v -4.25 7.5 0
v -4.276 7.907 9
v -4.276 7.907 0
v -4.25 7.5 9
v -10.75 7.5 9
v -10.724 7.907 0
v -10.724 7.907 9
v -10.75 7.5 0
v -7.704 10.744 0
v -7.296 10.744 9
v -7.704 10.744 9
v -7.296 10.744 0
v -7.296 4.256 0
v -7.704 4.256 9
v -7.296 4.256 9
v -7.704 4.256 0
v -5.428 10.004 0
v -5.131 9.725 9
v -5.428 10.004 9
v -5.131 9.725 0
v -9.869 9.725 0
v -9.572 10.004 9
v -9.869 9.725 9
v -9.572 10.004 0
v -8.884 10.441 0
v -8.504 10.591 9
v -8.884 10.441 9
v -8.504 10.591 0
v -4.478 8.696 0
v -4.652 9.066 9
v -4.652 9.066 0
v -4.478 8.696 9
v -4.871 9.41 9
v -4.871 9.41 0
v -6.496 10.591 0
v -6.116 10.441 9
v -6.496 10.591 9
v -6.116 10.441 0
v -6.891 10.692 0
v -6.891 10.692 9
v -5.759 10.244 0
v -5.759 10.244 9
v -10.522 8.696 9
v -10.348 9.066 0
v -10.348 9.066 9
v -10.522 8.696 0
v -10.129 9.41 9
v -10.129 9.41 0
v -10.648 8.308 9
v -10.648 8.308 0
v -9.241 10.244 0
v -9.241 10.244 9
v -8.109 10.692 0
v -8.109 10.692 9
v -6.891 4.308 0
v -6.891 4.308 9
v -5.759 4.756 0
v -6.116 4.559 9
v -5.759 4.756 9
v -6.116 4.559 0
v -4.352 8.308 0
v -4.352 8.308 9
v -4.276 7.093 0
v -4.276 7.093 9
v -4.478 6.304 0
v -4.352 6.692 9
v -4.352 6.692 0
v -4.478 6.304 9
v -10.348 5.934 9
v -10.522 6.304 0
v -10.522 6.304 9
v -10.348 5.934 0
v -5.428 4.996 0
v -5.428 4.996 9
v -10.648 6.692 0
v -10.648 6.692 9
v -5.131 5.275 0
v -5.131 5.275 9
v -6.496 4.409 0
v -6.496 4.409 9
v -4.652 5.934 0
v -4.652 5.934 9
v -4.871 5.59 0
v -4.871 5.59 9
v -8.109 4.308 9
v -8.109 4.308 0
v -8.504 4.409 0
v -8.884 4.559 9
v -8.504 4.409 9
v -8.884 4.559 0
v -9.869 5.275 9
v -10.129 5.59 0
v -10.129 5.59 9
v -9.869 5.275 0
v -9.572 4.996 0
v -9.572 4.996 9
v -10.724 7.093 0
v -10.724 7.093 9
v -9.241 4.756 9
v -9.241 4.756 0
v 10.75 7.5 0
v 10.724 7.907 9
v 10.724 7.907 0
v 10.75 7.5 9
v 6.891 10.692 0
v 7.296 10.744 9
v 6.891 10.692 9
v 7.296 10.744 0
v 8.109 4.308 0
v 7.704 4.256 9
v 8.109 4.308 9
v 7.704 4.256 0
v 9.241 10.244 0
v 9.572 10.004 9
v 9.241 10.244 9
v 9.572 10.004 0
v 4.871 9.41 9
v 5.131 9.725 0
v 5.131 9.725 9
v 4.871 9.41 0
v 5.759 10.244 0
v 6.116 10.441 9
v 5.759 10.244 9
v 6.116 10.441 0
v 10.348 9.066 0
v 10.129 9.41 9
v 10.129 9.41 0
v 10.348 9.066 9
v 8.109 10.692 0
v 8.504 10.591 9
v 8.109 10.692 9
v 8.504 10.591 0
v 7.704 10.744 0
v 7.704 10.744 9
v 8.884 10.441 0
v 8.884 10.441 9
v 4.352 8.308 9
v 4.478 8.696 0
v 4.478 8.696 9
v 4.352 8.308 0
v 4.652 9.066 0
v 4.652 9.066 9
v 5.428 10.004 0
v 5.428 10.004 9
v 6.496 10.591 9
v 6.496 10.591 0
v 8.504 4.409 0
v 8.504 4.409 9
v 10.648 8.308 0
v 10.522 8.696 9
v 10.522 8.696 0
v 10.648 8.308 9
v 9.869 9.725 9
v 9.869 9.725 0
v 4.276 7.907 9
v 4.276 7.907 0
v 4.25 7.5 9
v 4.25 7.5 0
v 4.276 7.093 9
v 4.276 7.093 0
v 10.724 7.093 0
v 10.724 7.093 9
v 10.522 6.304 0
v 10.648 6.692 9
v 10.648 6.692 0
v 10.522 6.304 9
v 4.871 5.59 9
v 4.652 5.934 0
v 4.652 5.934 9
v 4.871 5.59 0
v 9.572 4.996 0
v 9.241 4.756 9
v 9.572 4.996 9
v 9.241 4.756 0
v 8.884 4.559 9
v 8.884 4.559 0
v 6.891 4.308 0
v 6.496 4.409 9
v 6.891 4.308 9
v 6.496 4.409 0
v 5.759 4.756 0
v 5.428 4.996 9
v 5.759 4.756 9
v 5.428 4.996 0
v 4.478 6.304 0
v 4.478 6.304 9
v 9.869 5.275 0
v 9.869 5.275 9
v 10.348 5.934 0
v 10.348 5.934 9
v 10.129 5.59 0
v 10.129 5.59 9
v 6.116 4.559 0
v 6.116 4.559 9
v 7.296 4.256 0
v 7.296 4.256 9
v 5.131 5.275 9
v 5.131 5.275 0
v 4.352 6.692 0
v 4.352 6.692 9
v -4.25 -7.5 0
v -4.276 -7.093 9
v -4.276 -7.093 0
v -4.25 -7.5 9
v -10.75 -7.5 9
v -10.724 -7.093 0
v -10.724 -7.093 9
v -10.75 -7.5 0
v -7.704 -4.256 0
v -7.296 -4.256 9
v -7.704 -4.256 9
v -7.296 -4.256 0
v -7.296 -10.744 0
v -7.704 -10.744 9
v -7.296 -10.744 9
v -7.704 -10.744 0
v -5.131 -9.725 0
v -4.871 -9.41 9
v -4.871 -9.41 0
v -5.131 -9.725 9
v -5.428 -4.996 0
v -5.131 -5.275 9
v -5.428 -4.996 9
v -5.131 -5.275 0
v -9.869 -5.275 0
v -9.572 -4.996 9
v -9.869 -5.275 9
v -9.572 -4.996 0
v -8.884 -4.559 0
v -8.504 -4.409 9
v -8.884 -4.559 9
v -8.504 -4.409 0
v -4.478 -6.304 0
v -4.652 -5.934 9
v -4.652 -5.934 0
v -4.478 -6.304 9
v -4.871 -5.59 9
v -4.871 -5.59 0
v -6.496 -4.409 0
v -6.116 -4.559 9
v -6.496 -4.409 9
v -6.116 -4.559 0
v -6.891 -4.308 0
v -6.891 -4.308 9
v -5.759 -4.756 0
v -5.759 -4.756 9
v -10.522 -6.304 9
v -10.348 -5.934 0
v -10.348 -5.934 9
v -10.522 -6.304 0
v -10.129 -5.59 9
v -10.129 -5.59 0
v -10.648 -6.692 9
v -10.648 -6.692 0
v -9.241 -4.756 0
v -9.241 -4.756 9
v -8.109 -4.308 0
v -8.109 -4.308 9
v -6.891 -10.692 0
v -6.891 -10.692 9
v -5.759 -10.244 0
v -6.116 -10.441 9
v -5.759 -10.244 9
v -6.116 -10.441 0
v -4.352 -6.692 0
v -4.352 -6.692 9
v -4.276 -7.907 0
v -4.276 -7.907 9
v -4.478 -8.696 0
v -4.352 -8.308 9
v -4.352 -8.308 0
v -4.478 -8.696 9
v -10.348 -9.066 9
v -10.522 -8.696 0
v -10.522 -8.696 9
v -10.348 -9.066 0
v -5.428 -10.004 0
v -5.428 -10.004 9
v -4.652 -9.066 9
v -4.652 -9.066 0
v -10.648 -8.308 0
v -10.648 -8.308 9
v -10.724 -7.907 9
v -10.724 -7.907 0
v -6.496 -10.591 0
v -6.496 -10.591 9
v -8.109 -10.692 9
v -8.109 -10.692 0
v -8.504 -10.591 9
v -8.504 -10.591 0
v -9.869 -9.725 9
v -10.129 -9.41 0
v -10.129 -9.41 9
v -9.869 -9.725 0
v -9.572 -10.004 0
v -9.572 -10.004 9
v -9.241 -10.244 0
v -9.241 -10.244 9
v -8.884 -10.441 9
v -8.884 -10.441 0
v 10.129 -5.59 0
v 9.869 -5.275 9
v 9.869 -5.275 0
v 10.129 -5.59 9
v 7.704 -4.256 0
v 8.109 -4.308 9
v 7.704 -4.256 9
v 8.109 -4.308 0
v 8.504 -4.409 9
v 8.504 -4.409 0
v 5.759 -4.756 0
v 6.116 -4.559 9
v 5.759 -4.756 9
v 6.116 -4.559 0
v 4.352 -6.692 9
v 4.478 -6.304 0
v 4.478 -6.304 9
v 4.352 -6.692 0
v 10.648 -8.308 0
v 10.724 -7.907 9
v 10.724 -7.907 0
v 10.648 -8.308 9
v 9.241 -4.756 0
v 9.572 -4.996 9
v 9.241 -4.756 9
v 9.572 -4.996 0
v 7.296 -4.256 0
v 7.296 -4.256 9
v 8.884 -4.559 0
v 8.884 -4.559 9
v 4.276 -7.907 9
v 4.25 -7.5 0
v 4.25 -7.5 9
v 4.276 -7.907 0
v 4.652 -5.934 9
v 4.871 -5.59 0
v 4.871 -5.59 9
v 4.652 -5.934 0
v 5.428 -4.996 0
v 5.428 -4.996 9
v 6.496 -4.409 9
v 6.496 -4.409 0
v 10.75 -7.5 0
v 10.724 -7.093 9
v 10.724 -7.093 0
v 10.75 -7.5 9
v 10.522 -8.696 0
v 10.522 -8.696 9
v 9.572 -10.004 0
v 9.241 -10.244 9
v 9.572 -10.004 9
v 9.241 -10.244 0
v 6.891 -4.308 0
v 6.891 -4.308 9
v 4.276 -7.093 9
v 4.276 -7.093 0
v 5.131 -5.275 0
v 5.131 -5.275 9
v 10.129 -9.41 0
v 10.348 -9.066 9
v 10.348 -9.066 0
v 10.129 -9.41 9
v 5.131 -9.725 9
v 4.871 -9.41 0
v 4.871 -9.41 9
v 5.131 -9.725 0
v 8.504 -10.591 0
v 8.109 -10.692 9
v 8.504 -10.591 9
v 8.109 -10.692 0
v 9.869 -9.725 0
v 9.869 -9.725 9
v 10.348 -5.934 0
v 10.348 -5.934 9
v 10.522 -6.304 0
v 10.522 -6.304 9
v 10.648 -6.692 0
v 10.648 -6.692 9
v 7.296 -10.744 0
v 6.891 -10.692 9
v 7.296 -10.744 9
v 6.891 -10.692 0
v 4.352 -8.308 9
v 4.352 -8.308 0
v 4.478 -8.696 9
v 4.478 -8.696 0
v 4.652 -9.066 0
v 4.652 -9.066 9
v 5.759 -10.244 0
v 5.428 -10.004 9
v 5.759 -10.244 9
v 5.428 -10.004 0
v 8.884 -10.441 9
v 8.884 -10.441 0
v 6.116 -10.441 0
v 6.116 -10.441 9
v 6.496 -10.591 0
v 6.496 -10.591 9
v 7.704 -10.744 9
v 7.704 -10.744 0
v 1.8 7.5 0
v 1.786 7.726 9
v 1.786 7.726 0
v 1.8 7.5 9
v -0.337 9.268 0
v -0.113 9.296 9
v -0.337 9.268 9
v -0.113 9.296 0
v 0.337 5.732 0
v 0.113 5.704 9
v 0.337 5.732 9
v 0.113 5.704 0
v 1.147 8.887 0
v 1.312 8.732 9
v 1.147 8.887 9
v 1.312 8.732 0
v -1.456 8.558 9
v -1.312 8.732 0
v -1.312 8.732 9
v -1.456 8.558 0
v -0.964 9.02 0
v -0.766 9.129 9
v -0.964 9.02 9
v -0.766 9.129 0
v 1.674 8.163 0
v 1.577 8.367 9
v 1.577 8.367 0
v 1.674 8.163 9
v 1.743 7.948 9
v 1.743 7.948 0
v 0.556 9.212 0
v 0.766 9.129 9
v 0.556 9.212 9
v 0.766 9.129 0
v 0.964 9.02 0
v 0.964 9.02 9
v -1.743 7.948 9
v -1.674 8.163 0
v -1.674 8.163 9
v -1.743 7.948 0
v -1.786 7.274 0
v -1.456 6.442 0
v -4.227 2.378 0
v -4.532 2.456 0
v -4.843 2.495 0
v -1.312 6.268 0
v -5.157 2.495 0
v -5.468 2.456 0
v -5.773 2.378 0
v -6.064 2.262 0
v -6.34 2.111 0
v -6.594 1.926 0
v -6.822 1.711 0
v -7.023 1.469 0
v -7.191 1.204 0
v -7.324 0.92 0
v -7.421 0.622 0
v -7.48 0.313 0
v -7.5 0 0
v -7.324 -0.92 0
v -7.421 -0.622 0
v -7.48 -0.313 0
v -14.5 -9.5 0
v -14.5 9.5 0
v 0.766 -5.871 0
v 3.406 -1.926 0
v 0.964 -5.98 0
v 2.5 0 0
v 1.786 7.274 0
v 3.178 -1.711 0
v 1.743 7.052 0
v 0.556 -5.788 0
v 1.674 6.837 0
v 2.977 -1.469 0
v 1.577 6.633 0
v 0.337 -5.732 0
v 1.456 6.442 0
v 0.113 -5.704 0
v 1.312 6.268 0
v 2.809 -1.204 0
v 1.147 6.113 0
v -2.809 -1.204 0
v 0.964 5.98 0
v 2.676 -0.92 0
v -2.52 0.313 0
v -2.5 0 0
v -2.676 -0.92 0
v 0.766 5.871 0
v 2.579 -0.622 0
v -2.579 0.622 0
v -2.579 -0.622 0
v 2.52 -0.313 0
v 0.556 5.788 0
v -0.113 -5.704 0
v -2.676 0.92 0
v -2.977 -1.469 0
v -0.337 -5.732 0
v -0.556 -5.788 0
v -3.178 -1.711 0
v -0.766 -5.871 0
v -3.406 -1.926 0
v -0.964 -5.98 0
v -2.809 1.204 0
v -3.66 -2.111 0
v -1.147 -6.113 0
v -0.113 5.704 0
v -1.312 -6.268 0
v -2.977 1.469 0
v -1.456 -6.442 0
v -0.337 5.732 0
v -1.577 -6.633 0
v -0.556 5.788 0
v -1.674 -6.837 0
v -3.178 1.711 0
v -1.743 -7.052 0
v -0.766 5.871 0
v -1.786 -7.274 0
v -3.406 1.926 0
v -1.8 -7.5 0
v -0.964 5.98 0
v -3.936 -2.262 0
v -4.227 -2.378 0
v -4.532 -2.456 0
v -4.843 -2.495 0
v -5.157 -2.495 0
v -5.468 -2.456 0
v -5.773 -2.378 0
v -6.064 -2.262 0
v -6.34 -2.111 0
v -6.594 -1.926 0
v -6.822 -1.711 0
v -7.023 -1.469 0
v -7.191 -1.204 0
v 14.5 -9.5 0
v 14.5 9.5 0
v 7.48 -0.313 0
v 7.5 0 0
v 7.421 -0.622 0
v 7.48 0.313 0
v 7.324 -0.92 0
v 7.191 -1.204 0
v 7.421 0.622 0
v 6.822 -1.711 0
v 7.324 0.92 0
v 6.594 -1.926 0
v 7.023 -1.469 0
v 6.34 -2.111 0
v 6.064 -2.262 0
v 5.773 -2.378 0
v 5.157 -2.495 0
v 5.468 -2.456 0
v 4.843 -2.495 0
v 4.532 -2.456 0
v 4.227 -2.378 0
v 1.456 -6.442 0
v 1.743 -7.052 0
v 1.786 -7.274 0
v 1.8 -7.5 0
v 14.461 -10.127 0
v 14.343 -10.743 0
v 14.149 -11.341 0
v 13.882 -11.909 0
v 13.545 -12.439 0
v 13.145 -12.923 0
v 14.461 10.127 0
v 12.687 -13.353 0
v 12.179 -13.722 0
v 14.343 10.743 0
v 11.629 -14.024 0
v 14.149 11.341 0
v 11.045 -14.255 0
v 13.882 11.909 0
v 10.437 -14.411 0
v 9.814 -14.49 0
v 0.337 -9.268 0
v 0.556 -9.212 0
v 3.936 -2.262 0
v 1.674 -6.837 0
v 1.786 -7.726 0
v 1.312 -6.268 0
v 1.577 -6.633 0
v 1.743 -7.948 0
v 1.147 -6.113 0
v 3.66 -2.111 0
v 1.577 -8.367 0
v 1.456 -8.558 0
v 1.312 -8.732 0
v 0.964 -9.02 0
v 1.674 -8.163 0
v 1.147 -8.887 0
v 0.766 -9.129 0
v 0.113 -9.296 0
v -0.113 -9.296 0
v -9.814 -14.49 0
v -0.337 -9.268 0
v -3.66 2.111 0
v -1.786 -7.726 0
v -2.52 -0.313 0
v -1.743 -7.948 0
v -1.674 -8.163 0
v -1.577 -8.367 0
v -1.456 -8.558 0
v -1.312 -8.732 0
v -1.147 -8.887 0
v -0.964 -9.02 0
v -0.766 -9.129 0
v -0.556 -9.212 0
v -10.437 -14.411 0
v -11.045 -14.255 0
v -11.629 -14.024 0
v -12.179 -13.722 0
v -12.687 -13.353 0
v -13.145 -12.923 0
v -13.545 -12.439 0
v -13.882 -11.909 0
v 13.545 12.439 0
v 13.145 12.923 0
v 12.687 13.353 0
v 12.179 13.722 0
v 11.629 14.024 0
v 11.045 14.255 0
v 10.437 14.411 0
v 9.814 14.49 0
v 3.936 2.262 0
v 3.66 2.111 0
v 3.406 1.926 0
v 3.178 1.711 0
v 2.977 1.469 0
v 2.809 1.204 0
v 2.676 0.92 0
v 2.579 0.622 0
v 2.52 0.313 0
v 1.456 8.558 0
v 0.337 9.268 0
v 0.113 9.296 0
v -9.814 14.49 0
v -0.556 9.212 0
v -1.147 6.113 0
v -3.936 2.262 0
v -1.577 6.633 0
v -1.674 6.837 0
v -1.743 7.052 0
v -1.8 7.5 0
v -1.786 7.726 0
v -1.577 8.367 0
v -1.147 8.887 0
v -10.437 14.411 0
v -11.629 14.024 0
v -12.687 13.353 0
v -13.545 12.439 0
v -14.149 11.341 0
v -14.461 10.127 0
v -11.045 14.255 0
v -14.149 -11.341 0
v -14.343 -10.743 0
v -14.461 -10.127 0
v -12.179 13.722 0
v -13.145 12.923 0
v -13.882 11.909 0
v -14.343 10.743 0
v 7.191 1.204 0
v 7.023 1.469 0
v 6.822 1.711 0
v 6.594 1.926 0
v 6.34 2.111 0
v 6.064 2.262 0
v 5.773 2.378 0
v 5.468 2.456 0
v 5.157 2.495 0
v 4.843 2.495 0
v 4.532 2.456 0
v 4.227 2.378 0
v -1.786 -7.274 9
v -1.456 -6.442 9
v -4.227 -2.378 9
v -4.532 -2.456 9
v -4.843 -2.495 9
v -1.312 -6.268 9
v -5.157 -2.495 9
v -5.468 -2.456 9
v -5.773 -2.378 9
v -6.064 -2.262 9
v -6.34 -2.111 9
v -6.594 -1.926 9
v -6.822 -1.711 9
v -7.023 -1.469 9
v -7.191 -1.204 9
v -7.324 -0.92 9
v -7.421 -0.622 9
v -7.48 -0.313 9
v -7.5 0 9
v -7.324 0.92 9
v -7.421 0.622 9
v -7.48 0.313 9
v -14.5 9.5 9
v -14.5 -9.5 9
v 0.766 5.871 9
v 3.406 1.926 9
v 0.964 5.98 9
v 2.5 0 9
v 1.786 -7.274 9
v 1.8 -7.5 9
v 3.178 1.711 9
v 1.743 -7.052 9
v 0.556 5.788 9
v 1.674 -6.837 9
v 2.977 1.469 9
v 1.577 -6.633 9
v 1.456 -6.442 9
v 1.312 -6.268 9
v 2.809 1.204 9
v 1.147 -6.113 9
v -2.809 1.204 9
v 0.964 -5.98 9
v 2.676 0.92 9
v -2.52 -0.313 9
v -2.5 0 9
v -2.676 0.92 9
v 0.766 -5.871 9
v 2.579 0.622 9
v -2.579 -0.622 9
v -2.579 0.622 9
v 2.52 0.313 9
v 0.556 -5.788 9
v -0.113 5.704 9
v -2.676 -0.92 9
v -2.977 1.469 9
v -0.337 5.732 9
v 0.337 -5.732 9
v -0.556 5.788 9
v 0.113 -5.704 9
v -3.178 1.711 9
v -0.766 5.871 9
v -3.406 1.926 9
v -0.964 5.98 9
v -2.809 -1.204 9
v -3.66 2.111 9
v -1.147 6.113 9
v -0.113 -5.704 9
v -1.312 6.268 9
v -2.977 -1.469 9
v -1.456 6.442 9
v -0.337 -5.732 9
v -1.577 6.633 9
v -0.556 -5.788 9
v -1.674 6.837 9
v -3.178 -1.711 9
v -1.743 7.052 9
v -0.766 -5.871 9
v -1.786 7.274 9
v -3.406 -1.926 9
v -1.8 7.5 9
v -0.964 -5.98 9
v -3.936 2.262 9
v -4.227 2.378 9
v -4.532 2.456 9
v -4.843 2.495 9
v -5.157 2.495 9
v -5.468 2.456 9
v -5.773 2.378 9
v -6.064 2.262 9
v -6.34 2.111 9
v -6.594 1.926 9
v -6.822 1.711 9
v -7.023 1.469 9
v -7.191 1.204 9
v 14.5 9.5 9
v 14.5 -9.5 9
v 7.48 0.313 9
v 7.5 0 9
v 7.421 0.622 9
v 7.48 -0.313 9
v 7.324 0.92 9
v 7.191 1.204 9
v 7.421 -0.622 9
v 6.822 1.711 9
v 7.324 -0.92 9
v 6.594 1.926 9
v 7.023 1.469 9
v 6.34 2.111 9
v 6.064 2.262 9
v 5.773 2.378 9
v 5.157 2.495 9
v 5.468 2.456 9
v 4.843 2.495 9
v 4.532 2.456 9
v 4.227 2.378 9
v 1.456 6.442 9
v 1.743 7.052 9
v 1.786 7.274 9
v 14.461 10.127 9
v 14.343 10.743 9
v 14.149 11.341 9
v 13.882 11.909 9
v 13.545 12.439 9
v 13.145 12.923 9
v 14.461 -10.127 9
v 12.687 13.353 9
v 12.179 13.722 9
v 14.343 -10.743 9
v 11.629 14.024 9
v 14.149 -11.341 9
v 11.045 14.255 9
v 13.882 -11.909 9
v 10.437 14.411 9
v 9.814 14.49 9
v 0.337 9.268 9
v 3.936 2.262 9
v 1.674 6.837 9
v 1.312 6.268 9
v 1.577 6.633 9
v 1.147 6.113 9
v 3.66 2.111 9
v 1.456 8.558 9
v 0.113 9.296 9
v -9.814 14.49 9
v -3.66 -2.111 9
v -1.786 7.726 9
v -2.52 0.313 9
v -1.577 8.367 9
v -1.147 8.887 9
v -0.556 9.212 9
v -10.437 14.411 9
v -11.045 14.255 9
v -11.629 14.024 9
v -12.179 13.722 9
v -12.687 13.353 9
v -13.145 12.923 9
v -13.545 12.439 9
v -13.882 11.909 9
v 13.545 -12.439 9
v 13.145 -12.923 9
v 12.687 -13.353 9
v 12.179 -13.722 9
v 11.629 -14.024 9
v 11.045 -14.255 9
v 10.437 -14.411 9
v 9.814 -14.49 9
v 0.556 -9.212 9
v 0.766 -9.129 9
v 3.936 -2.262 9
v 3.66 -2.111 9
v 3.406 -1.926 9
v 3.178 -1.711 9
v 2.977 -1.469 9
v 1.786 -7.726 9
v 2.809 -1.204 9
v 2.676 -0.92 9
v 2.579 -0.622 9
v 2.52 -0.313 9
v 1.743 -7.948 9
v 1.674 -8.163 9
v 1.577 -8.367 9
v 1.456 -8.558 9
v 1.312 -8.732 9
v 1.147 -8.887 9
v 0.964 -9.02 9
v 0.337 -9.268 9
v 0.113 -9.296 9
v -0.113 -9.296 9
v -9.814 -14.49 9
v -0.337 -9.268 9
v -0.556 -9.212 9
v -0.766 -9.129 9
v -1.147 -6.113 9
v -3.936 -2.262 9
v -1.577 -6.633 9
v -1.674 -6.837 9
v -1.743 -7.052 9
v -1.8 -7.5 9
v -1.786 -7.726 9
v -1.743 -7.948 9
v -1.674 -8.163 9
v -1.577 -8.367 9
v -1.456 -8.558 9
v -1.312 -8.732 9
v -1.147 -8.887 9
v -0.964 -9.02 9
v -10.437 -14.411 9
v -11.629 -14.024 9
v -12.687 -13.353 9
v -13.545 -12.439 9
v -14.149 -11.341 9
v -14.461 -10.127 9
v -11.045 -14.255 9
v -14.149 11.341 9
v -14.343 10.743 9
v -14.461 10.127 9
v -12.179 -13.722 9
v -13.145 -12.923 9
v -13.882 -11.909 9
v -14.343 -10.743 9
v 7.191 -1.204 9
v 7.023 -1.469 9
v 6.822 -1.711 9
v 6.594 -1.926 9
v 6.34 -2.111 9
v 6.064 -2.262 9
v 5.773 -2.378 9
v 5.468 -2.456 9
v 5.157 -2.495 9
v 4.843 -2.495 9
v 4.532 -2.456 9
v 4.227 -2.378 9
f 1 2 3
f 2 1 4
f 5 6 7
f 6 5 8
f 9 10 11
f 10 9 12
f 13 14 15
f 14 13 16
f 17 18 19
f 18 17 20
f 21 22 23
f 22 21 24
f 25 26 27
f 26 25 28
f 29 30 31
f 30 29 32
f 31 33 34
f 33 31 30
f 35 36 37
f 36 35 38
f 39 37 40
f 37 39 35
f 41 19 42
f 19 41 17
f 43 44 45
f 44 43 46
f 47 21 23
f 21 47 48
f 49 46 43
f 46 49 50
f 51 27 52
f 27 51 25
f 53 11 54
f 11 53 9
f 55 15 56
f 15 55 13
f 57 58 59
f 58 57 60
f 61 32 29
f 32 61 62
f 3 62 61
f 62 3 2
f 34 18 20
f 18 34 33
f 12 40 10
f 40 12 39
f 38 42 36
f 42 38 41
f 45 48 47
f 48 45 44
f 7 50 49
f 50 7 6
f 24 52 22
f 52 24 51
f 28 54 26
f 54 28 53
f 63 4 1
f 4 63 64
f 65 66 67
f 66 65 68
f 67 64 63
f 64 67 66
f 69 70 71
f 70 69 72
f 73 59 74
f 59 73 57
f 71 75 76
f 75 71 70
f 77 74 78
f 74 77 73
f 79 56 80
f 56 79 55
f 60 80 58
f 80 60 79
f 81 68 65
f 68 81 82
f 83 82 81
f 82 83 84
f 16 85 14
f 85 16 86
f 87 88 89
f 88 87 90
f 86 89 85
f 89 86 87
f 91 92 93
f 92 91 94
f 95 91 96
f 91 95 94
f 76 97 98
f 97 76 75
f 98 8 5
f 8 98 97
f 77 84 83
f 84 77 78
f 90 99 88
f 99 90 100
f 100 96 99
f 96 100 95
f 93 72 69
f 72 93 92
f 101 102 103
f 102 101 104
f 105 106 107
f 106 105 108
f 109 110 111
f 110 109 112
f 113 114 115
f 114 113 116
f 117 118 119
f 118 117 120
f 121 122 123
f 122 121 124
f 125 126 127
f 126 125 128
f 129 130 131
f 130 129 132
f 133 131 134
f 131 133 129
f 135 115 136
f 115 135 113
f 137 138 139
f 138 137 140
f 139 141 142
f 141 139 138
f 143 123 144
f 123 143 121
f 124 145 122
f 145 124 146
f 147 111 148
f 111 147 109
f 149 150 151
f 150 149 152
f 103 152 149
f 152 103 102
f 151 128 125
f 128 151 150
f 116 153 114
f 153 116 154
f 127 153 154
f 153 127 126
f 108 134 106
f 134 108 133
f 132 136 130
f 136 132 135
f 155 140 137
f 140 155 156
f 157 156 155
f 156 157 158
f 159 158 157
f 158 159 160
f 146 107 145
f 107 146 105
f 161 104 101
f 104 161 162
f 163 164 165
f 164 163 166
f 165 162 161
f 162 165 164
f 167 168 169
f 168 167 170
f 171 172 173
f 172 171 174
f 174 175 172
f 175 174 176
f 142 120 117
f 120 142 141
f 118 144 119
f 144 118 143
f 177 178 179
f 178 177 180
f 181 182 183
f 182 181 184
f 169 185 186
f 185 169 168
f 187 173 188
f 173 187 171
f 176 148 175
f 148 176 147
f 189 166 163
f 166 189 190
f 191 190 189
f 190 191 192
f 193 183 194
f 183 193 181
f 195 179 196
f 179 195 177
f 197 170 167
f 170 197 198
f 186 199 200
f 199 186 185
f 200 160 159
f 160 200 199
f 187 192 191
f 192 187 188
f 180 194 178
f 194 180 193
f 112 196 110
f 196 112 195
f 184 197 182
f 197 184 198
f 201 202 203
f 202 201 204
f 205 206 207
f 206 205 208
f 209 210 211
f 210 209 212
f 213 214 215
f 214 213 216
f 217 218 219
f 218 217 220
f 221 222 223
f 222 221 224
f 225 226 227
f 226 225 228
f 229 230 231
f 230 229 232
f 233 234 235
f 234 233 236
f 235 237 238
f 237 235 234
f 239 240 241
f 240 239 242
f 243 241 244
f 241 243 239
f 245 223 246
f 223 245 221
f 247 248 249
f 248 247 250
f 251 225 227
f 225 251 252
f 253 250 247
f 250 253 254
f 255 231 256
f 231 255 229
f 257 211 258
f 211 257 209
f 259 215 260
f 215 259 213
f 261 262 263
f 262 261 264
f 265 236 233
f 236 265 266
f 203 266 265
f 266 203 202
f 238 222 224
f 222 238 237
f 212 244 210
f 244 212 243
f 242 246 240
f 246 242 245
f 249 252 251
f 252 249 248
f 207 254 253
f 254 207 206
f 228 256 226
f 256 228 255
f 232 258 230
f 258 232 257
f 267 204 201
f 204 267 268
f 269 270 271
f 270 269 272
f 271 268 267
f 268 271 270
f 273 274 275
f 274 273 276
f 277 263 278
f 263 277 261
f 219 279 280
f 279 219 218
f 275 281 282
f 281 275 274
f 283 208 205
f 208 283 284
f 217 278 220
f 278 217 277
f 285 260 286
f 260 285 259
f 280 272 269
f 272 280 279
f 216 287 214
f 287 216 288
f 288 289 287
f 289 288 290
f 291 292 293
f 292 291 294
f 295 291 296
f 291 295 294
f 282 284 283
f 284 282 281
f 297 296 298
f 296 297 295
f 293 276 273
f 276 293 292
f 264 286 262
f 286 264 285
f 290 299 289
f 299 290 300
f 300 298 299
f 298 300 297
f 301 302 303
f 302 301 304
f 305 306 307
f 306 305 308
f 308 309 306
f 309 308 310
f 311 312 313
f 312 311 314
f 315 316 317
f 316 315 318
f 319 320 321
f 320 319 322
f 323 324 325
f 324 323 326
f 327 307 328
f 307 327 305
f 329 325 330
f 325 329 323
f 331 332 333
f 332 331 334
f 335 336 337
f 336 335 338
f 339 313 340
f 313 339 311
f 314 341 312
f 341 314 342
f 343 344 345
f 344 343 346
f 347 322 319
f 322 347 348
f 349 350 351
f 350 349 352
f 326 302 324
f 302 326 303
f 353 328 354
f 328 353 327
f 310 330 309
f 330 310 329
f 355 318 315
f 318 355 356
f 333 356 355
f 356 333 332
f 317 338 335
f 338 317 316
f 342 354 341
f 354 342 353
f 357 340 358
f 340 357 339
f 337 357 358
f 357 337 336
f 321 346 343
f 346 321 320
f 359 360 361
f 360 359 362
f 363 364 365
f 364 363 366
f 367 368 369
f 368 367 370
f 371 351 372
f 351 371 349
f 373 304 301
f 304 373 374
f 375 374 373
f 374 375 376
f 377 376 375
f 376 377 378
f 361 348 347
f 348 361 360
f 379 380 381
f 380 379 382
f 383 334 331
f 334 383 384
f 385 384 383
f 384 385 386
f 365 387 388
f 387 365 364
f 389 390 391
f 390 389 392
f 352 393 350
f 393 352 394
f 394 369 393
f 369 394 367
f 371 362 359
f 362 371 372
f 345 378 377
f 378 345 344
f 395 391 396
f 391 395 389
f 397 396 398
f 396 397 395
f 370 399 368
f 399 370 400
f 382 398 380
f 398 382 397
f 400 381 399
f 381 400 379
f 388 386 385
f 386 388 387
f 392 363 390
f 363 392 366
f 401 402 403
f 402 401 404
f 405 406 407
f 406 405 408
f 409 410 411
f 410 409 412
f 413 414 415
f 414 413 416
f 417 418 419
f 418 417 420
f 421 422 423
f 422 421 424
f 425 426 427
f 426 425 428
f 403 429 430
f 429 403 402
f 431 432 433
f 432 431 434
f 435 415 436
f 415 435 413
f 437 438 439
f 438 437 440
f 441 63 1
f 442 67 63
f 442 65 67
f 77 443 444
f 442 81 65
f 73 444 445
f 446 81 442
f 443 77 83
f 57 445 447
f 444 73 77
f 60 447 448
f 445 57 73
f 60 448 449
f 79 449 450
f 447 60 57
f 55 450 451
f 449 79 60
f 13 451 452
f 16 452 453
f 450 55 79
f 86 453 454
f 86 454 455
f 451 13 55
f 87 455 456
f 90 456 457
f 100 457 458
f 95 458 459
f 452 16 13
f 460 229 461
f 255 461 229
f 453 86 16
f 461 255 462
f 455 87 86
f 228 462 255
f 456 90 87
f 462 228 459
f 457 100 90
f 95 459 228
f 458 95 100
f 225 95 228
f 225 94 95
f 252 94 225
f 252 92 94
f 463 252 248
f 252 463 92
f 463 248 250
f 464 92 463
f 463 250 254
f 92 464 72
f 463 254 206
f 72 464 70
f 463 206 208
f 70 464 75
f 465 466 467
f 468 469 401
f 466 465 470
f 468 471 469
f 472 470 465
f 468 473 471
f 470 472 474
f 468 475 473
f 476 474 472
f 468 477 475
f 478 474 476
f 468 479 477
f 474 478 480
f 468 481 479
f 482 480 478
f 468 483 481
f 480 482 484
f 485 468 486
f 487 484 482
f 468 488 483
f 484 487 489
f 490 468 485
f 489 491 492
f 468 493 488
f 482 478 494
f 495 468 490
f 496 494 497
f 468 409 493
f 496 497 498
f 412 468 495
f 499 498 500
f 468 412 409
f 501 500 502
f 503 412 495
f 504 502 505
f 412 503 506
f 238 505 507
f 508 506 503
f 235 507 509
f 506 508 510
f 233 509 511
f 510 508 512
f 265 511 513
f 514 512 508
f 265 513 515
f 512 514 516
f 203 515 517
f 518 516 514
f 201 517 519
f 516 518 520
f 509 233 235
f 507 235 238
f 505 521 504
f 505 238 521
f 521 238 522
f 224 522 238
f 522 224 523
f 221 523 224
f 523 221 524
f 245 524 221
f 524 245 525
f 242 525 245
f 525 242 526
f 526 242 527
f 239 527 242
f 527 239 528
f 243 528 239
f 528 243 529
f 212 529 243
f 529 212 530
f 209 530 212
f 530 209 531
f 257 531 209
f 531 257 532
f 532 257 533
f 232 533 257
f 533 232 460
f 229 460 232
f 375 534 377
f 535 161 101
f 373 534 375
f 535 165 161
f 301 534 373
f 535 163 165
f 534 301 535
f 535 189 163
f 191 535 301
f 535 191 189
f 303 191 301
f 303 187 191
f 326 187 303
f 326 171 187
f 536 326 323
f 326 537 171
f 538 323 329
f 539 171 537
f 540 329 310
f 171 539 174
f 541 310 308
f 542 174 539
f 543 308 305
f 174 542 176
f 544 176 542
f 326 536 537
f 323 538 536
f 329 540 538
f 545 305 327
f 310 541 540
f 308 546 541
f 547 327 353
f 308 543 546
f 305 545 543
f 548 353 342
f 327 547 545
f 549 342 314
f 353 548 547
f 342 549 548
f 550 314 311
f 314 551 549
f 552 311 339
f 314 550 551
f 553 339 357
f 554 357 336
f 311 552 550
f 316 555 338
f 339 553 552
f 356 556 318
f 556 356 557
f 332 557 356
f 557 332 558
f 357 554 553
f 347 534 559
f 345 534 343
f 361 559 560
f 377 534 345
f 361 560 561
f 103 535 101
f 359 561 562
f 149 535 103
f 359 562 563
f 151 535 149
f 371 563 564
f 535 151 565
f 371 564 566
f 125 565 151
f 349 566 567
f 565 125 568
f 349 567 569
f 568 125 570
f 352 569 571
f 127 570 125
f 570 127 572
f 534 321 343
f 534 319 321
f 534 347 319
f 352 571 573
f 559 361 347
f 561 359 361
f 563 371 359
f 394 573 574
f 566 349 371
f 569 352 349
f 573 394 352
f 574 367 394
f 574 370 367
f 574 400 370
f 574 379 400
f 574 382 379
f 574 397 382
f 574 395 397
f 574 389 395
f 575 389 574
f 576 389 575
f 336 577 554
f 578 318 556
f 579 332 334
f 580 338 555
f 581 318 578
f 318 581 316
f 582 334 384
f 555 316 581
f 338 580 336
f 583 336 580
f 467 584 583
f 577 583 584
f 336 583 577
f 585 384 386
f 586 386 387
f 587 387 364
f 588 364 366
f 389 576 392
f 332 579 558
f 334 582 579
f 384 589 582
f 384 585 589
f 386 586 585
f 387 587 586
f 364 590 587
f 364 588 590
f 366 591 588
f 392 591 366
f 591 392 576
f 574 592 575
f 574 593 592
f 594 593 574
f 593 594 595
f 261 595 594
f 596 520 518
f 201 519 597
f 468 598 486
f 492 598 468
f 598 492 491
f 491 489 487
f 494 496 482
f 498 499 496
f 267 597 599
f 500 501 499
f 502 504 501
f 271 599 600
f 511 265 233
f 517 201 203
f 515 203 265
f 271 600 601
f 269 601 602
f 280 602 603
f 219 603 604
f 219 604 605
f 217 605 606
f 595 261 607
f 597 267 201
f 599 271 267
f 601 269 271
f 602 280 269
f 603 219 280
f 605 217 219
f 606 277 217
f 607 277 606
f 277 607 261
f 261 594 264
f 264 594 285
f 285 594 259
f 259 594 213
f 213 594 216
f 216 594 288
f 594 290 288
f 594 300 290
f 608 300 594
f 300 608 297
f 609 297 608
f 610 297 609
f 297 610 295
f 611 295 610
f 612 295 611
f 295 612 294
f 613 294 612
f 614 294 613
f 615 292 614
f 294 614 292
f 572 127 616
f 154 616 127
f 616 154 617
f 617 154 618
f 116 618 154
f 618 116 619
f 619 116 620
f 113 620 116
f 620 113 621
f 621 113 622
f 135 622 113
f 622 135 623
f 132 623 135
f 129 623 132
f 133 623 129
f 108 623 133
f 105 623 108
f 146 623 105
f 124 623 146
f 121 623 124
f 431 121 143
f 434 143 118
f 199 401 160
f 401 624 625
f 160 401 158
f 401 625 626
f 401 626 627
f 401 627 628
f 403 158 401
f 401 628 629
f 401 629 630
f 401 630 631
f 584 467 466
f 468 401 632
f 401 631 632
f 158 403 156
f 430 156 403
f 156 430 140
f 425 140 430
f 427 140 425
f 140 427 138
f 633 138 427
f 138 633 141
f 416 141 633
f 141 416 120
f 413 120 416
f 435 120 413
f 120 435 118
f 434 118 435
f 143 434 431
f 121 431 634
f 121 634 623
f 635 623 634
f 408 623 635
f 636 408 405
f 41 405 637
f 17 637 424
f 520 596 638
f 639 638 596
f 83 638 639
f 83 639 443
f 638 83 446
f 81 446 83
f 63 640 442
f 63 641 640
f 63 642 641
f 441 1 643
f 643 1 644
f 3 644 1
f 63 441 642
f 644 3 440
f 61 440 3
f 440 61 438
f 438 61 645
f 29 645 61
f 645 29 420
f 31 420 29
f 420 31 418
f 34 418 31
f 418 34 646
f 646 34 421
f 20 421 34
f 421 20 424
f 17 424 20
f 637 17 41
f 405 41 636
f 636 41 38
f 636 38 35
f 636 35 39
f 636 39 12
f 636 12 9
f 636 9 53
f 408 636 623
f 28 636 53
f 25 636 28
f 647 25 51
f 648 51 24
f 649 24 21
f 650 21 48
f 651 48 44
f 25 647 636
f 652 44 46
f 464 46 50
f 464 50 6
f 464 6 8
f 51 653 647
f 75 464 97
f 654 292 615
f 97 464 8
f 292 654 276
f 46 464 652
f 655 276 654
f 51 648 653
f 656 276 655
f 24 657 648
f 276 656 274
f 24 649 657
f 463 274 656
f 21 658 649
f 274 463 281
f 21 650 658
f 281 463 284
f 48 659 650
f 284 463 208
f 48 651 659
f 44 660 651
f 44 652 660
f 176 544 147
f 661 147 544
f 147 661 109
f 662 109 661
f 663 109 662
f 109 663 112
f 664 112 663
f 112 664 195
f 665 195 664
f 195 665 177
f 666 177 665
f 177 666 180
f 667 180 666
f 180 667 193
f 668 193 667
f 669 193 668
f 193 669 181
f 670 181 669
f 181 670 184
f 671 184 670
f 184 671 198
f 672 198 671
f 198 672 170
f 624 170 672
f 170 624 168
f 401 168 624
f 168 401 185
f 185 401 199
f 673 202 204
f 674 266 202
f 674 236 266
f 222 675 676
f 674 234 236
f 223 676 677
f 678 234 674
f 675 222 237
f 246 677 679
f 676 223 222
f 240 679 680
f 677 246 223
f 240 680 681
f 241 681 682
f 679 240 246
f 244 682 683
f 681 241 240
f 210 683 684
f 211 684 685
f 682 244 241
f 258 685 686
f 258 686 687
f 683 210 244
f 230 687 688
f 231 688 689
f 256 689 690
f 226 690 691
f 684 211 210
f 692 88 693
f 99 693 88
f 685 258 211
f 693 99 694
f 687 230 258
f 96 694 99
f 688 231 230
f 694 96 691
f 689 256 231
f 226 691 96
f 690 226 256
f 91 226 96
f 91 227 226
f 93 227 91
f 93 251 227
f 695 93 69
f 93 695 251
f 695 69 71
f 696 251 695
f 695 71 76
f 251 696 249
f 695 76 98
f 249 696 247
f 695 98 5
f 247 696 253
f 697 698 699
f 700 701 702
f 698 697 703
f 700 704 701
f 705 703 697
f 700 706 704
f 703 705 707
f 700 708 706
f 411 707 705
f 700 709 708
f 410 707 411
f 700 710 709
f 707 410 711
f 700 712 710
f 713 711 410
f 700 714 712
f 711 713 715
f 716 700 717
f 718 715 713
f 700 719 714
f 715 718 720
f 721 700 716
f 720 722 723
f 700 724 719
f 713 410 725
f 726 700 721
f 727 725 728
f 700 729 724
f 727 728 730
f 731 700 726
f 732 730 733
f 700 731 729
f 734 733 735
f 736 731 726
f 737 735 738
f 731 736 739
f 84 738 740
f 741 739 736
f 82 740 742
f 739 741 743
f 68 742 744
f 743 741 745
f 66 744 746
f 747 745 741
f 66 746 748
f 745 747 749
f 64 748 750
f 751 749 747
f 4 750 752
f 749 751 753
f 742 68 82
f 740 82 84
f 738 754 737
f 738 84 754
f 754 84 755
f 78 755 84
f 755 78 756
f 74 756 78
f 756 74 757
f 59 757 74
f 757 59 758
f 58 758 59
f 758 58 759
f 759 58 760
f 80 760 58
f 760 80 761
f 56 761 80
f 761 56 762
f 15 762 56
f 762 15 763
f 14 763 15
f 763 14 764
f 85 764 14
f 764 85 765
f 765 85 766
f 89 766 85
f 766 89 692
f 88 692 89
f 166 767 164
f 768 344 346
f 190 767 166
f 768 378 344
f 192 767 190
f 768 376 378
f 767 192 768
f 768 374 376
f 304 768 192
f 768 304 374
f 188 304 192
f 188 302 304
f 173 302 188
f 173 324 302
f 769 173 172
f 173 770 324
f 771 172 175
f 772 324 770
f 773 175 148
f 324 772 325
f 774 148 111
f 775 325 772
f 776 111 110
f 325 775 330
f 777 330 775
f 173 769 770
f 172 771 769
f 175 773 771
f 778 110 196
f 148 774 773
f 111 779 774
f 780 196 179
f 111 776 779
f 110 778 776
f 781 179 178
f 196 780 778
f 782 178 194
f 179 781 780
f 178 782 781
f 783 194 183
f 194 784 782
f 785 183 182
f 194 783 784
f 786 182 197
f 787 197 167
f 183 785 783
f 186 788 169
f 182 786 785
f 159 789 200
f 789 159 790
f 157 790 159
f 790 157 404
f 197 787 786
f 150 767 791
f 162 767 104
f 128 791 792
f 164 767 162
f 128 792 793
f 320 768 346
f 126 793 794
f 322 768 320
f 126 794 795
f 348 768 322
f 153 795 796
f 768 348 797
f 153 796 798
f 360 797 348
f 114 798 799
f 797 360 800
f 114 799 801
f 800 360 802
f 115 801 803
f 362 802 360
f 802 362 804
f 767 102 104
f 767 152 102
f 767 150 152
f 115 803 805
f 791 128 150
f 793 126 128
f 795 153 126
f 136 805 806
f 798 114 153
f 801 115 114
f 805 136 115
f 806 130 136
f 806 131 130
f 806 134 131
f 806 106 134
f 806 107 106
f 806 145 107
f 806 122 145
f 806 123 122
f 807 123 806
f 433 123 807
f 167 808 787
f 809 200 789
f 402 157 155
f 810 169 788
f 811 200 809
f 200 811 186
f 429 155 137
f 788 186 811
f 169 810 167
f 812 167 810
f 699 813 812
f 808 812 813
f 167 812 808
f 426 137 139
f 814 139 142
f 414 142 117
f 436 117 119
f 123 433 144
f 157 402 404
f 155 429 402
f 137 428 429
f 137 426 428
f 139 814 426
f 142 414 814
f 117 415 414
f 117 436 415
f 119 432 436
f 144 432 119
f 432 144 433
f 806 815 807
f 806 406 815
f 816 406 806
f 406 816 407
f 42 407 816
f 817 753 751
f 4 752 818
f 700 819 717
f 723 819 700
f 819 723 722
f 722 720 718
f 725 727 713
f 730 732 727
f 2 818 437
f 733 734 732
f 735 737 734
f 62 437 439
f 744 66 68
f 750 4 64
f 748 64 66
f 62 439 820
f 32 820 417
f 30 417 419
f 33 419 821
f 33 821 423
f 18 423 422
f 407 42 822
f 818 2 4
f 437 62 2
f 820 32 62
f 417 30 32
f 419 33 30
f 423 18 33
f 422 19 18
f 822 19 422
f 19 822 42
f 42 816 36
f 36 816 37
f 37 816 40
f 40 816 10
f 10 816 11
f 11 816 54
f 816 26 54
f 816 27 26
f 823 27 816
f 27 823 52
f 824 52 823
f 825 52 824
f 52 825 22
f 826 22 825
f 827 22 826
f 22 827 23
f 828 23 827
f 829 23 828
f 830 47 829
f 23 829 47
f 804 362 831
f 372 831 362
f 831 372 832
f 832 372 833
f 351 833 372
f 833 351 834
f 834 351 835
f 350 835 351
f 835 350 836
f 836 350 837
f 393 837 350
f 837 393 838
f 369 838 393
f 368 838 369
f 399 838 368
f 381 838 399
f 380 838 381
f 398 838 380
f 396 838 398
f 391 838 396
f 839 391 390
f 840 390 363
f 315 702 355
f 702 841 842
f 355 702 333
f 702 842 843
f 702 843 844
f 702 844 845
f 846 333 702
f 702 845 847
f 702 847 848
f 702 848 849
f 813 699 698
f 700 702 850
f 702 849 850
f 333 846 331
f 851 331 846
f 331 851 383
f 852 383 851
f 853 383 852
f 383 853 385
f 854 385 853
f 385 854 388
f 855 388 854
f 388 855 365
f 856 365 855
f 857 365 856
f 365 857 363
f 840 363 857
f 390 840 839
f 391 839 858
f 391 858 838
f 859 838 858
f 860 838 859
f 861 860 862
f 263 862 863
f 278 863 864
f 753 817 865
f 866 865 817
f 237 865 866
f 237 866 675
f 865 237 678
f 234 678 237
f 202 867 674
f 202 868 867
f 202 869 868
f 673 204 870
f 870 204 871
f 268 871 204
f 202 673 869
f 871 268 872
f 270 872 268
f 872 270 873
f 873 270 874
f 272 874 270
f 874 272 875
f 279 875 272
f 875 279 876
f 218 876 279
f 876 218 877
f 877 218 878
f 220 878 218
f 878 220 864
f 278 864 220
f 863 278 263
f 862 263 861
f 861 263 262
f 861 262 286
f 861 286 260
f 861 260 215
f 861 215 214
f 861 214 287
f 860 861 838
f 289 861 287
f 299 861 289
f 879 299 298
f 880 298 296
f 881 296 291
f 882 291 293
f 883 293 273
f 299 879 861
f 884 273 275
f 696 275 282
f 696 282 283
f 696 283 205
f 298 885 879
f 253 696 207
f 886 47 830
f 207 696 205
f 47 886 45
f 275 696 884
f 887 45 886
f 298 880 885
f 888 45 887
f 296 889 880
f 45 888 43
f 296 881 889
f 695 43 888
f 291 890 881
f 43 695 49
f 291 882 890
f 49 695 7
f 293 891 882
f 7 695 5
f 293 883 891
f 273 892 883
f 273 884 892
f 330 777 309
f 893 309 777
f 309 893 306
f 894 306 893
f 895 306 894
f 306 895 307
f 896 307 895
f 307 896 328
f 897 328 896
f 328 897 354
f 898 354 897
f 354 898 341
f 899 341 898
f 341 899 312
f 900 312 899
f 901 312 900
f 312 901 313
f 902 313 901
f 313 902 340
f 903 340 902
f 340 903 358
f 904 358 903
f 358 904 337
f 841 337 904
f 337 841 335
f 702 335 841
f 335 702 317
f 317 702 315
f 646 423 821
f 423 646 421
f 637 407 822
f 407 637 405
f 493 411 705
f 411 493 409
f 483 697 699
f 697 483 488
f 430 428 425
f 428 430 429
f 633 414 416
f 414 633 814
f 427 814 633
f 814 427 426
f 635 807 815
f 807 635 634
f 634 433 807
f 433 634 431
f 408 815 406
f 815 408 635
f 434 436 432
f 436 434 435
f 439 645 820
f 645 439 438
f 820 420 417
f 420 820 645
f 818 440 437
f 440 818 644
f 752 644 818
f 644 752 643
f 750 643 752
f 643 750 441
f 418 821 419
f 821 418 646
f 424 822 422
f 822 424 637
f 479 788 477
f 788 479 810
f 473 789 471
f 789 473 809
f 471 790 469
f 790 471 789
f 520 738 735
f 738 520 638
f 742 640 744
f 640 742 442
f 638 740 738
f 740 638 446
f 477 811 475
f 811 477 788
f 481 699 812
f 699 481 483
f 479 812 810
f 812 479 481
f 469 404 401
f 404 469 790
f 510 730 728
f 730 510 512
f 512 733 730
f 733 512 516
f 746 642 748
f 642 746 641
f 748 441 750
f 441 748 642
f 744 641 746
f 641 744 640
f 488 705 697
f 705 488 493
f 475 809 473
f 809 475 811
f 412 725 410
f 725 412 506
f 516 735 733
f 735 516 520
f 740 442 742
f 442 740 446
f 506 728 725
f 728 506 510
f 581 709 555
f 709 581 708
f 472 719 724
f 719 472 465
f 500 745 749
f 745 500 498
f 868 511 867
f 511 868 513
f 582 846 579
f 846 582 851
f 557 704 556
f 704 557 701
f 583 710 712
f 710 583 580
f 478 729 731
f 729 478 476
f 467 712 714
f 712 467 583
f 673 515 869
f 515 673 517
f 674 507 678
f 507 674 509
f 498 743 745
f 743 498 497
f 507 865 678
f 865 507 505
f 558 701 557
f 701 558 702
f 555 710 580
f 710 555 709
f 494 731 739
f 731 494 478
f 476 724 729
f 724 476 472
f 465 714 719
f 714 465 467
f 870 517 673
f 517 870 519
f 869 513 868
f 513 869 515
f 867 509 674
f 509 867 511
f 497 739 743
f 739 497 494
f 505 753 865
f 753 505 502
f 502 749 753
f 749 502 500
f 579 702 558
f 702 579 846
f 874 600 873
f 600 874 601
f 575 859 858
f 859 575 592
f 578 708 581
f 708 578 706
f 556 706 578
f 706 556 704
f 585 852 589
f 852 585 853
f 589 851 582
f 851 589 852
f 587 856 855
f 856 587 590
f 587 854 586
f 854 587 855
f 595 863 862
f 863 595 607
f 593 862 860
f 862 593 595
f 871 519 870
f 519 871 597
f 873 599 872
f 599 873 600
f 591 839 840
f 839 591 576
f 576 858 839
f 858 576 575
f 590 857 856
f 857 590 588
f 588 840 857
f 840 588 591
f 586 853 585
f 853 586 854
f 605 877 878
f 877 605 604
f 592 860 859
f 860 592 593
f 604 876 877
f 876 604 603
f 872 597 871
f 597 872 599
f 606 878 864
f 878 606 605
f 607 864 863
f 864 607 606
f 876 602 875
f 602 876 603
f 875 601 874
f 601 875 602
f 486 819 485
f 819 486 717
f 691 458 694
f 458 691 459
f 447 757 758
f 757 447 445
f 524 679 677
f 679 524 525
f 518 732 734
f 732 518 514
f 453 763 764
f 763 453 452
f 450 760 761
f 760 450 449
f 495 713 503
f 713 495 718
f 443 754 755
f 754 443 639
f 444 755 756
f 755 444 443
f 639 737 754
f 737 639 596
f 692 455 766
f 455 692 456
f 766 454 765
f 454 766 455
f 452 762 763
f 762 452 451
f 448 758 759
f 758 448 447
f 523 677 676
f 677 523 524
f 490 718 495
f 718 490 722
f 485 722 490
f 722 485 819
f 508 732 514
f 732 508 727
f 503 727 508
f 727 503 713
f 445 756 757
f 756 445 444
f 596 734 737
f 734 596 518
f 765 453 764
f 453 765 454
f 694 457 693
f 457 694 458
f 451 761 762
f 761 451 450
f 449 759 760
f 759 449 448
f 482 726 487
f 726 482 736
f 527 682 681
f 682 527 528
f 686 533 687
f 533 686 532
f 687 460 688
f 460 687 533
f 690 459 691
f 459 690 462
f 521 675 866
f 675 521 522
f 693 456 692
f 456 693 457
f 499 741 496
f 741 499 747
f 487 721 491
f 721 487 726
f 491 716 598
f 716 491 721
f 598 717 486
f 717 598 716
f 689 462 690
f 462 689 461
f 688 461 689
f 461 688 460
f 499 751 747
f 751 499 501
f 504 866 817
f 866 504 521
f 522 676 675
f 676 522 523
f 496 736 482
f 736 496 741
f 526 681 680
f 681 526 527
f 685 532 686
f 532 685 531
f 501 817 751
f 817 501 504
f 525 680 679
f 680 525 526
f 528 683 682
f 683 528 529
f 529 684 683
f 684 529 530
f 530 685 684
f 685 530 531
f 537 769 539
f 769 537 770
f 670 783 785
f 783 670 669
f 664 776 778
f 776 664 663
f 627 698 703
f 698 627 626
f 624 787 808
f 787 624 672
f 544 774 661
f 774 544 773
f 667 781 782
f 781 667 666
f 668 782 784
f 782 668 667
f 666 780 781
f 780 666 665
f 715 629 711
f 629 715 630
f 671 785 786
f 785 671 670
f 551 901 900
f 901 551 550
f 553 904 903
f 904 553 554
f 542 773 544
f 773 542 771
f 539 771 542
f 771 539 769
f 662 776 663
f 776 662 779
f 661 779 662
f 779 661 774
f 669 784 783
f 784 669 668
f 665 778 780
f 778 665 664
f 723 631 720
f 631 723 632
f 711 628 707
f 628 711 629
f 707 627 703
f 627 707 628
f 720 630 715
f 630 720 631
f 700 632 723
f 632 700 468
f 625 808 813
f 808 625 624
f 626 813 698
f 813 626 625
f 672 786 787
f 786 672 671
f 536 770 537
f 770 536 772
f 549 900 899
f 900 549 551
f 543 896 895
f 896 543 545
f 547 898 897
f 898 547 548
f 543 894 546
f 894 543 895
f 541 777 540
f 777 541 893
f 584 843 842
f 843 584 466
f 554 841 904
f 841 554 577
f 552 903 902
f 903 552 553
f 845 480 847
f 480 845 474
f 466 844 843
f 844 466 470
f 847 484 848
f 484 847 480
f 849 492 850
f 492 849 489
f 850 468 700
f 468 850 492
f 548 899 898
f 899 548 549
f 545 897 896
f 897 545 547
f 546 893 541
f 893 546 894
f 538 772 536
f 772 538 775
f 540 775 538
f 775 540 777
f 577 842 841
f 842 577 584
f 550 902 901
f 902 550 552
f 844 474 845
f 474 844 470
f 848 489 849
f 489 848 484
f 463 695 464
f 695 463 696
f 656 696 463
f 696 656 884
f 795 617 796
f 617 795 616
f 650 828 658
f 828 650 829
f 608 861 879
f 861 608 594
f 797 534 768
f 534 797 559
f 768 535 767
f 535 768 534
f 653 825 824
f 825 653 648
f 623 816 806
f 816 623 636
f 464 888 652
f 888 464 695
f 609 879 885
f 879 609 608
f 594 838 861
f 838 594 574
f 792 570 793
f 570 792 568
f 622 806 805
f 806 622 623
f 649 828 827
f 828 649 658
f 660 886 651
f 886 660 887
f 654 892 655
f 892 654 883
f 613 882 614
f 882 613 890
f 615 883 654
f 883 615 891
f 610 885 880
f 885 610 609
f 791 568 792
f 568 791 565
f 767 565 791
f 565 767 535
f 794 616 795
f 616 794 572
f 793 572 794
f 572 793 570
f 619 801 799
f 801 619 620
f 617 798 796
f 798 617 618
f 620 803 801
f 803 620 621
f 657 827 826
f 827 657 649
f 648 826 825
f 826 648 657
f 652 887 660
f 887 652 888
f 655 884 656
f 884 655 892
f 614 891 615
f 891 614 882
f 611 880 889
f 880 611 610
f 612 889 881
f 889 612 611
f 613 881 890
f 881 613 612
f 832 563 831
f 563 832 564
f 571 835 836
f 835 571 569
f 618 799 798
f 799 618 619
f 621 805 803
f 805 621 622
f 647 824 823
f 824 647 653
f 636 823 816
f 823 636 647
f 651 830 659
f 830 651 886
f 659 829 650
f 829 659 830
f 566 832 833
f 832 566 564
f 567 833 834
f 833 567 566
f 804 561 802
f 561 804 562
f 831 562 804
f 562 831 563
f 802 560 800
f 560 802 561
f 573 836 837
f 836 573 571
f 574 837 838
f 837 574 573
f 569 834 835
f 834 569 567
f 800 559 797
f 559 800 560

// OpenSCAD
$fn = 50;


difference() {
	union() {
		hull() {
			translate(v = [-9.5000000000, 9.5000000000, 0]) {
				cylinder(h = 9, r = 5);
			}
			translate(v = [9.5000000000, 9.5000000000, 0]) {
				cylinder(h = 9, r = 5);
			}
			translate(v = [-9.5000000000, -9.5000000000, 0]) {
				cylinder(h = 9, r = 5);
			}
			translate(v = [9.5000000000, -9.5000000000, 0]) {
				cylinder(h = 9, r = 5);
			}
		}
	}
	union() {
		#translate(v = [-7.5000000000, 7.5000000000, 0]) {
			cylinder(h = 9, r = 3.2500000000);
		}
		#translate(v = [7.5000000000, 7.5000000000, 0]) {
			cylinder(h = 9, r = 3.2500000000);
		}
		#translate(v = [-7.5000000000, -7.5000000000, 0]) {
			cylinder(h = 9, r = 3.2500000000);
		}
		#translate(v = [7.5000000000, -7.5000000000, 0]) {
			cylinder(h = 9, r = 3.2500000000);
		}
		#translate(v = [-7.5000000000, -7.5000000000, -100.0000000000]) {
			cylinder(h = 200, r = 3.2500000000);
		}
		#translate(v = [-7.5000000000, 7.5000000000, -100.0000000000]) {
			cylinder(h = 200, r = 3.2500000000);
		}
		#translate(v = [7.5000000000, -7.5000000000, -100.0000000000]) {
			cylinder(h = 200, r = 3.2500000000);
		}
		#translate(v = [7.5000000000, 7.5000000000, -100.0000000000]) {
			cylinder(h = 200, r = 3.2500000000);
		}
		#translate(v = [-7.5000000000, 7.5000000000, 0]) {
			cylinder(h = 9, r = 1.8000000000);
		}
		#translate(v = [0.0000000000, 7.5000000000, 0]) {
			cylinder(h = 9, r = 1.8000000000);
		}
		#translate(v = [7.5000000000, 7.5000000000, 0]) {
			cylinder(h = 9, r = 1.8000000000);
		}
		#translate(v = [-7.5000000000, -7.5000000000, 0]) {
			cylinder(h = 9, r = 1.8000000000);
		}
		#translate(v = [0.0000000000, -7.5000000000, 0]) {
			cylinder(h = 9, r = 1.8000000000);
		}
		#translate(v = [7.5000000000, -7.5000000000, 0]) {
			cylinder(h = 9, r = 1.8000000000);
		}
		#translate(v = [-7.5000000000, 7.5000000000, 0]) {
			cylinder(h = 9, r = 1.8000000000);
		}
		#translate(v = [0.0000000000, 7.5000000000, 0]) {
			cylinder(h = 9, r = 1.8000000000);
		}
		#translate(v = [7.5000000000, 7.5000000000, 0]) {
			cylinder(h = 9, r = 1.8000000000);
		}
		#translate(v = [-7.5000000000, -7.5000000000, 0]) {
			cylinder(h = 9, r = 1.8000000000);
		}
		#translate(v = [0.0000000000, -7.5000000000, 0]) {
			cylinder(h = 9, r = 1.8000000000);
		}
		#translate(v = [7.5000000000, -7.5000000000, 0]) {
			cylinder(h = 9, r = 1.8000000000);
		}
		#translate(v = [-7.5000000000, 7.5000000000, 0]) {
			cylinder(h = 9, r = 1.8000000000);
		}
		#translate(v = [0.0000000000, 7.5000000000, 0]) {
			cylinder(h = 9, r = 1.8000000000);
		}
		#translate(v = [7.5000000000, 7.5000000000, 0]) {
			cylinder(h = 9, r = 1.8000000000);
		}
		#translate(v = [-7.5000000000, -7.5000000000, 0]) {
			cylinder(h = 9, r = 1.8000000000);
		}
		#translate(v = [0.0000000000, -7.5000000000, 0]) {
			cylinder(h = 9, r = 1.8000000000);
		}
		#translate(v = [7.5000000000, -7.5000000000, 0]) {
			cylinder(h = 9, r = 1.8000000000);
		}
		#translate(v = [-5.0000000000, 0, 0]) {
			cylinder(h = 9, r = 2.5000000000);
		}
		#translate(v = [5.0000000000, 0, 0]) {
			cylinder(h = 9, r = 2.5000000000);
		}
	}
}
